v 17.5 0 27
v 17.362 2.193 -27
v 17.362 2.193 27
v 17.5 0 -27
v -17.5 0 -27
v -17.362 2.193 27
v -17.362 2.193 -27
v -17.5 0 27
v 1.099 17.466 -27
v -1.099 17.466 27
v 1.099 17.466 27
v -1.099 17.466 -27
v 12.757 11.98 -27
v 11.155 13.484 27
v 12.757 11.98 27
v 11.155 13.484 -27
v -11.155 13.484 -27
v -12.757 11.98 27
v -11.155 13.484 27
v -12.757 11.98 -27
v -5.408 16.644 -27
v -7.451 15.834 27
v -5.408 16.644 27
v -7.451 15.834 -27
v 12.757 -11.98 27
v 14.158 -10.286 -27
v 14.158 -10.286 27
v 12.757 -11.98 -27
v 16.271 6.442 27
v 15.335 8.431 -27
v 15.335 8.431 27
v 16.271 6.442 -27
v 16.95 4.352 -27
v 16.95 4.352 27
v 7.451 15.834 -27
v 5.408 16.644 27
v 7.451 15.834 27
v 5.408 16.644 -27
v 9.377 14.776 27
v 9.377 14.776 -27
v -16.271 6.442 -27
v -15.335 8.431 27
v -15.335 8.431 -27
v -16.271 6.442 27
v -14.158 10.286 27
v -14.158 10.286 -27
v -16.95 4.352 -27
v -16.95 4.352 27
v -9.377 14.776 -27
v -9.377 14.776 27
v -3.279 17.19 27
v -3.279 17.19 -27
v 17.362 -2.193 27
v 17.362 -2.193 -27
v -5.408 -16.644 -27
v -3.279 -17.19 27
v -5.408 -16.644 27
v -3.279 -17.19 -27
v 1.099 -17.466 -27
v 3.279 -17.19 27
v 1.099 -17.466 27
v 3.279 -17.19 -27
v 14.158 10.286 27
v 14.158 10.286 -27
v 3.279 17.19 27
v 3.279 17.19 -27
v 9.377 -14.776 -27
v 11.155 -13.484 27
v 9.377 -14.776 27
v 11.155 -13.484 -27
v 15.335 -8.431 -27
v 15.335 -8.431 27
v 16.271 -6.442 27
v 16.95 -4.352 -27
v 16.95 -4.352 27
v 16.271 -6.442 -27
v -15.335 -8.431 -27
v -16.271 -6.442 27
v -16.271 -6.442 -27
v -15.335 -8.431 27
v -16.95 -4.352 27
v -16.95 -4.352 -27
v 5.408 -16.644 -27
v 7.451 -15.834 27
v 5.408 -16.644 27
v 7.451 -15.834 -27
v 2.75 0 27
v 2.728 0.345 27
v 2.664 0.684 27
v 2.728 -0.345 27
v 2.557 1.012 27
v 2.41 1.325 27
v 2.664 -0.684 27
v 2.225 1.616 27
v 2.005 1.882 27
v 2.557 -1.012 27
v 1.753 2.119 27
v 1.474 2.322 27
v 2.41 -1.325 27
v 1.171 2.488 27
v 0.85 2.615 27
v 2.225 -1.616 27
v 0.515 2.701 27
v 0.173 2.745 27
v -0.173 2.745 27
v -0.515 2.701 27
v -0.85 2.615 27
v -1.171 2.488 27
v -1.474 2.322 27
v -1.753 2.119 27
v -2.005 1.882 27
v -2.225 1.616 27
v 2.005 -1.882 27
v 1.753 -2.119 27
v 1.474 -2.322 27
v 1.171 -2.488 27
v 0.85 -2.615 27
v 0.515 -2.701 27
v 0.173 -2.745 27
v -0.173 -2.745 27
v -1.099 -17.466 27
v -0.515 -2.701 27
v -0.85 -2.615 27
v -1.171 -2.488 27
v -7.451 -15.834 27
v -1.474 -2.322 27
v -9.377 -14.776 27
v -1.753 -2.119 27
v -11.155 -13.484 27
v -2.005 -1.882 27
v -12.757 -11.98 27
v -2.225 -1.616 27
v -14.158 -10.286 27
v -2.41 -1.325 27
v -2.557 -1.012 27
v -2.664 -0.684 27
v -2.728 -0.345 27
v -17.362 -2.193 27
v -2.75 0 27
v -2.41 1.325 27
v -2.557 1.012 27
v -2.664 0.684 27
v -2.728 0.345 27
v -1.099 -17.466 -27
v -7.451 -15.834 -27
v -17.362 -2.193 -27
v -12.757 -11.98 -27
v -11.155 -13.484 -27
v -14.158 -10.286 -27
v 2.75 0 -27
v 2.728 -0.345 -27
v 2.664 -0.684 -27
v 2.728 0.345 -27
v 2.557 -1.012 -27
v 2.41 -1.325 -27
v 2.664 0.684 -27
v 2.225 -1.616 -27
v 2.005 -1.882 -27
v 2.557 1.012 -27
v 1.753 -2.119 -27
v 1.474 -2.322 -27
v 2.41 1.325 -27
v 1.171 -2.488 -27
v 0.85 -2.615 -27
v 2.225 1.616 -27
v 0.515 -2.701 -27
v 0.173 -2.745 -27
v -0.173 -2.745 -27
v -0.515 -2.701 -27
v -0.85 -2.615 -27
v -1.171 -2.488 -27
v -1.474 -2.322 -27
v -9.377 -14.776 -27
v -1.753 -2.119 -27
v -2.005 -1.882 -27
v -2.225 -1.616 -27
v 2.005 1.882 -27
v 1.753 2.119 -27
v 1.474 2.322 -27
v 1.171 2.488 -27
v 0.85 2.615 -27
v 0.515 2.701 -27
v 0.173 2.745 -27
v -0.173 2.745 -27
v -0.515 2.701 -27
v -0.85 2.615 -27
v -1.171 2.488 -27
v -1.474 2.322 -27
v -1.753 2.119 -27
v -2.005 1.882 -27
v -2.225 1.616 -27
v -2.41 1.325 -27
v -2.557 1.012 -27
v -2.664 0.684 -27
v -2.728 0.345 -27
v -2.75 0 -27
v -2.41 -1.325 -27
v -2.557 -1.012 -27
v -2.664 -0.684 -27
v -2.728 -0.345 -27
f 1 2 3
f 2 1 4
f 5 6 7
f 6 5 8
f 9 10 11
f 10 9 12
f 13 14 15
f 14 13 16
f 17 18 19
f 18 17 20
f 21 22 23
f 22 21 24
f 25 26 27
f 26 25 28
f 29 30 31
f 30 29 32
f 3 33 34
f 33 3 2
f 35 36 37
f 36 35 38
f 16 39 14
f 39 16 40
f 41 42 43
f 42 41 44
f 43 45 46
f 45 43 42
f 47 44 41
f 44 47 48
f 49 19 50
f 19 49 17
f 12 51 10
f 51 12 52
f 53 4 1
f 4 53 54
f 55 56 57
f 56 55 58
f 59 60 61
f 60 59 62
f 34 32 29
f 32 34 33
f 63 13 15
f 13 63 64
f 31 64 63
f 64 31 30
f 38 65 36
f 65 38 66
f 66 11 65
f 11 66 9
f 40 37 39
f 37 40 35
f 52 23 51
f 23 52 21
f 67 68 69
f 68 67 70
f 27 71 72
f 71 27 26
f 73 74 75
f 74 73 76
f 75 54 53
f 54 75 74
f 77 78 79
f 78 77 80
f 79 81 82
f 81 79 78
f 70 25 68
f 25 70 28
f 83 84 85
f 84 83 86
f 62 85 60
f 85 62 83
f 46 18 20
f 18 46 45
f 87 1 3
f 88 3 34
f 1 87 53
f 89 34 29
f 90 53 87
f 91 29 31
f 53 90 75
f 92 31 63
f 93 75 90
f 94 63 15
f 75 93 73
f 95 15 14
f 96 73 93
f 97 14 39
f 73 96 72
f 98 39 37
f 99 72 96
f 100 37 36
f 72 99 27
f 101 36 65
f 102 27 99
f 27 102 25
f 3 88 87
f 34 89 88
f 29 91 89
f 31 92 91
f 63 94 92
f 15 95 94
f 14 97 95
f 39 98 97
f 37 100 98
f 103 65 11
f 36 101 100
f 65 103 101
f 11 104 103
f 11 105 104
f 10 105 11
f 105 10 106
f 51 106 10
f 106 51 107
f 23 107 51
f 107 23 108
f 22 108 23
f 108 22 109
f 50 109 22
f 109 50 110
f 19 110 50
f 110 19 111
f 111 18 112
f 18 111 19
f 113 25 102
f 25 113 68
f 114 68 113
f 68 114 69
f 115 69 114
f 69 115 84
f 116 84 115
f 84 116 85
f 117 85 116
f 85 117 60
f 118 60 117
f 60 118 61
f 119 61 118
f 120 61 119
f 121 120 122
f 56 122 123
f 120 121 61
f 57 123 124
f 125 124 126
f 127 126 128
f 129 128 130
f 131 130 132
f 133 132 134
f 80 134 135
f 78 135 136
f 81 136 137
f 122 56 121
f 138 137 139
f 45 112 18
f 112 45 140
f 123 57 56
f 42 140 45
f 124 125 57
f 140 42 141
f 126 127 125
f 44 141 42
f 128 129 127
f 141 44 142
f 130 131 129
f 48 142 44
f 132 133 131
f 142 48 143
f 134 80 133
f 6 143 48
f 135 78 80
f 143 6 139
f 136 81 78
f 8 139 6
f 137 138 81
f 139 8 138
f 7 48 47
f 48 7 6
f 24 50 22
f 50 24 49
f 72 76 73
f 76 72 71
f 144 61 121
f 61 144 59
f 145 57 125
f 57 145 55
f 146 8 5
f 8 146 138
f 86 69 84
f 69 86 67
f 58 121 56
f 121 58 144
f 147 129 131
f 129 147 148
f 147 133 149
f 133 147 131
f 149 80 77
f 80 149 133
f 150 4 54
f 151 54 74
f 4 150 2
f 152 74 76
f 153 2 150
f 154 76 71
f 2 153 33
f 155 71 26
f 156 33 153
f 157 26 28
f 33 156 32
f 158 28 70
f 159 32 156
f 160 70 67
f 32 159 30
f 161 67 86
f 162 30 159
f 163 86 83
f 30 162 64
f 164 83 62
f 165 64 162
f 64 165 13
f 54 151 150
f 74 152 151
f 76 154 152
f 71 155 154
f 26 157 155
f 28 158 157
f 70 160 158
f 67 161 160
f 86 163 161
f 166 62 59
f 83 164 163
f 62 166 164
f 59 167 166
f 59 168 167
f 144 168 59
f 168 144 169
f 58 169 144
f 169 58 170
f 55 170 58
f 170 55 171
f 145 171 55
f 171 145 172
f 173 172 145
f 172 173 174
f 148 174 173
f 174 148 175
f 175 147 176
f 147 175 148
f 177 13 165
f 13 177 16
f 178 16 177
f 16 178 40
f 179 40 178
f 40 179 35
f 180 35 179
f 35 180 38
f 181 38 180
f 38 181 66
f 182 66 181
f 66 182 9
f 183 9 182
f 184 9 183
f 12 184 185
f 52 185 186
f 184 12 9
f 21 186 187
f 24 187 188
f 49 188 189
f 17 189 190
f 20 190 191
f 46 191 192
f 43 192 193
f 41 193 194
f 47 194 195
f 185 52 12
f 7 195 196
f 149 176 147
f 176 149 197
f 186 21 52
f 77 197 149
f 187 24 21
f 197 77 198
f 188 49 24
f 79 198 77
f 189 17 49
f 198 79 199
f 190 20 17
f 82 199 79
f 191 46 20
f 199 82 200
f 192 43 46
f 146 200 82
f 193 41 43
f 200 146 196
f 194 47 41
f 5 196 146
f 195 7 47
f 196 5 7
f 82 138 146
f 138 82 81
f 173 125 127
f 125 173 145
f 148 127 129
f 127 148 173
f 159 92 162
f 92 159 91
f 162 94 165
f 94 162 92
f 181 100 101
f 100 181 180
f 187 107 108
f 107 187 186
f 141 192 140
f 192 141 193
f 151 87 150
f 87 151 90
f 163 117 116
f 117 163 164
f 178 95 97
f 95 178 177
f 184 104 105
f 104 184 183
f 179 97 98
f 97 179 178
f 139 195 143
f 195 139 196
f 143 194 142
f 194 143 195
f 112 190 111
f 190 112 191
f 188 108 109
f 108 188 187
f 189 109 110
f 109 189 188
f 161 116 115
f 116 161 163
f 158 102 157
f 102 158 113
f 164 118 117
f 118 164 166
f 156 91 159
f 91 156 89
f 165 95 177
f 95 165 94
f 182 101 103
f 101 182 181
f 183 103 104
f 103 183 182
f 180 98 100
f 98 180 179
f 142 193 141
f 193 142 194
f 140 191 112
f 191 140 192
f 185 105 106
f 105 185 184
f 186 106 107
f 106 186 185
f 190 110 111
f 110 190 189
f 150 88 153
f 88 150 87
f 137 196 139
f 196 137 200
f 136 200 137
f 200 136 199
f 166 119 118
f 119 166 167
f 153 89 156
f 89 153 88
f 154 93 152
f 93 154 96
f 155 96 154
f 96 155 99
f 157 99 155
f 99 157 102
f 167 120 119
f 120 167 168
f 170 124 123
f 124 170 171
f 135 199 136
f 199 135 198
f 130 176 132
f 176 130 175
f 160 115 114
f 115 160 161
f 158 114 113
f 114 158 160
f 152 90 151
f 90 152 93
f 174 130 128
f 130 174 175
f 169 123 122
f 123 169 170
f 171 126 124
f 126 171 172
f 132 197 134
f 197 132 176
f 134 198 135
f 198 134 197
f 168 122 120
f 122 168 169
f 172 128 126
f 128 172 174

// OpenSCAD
$fn = 50;


difference() {
	union() {
		translate(v = [0, 0, -27.0000000000]) {
			cylinder(h = 54, r = 17.5000000000);
		}
	}
	union() {
		translate(v = [0, 0, -100.0000000000]) {
			cylinder(h = 200, r = 2.7500000000);
		}
	}
}
